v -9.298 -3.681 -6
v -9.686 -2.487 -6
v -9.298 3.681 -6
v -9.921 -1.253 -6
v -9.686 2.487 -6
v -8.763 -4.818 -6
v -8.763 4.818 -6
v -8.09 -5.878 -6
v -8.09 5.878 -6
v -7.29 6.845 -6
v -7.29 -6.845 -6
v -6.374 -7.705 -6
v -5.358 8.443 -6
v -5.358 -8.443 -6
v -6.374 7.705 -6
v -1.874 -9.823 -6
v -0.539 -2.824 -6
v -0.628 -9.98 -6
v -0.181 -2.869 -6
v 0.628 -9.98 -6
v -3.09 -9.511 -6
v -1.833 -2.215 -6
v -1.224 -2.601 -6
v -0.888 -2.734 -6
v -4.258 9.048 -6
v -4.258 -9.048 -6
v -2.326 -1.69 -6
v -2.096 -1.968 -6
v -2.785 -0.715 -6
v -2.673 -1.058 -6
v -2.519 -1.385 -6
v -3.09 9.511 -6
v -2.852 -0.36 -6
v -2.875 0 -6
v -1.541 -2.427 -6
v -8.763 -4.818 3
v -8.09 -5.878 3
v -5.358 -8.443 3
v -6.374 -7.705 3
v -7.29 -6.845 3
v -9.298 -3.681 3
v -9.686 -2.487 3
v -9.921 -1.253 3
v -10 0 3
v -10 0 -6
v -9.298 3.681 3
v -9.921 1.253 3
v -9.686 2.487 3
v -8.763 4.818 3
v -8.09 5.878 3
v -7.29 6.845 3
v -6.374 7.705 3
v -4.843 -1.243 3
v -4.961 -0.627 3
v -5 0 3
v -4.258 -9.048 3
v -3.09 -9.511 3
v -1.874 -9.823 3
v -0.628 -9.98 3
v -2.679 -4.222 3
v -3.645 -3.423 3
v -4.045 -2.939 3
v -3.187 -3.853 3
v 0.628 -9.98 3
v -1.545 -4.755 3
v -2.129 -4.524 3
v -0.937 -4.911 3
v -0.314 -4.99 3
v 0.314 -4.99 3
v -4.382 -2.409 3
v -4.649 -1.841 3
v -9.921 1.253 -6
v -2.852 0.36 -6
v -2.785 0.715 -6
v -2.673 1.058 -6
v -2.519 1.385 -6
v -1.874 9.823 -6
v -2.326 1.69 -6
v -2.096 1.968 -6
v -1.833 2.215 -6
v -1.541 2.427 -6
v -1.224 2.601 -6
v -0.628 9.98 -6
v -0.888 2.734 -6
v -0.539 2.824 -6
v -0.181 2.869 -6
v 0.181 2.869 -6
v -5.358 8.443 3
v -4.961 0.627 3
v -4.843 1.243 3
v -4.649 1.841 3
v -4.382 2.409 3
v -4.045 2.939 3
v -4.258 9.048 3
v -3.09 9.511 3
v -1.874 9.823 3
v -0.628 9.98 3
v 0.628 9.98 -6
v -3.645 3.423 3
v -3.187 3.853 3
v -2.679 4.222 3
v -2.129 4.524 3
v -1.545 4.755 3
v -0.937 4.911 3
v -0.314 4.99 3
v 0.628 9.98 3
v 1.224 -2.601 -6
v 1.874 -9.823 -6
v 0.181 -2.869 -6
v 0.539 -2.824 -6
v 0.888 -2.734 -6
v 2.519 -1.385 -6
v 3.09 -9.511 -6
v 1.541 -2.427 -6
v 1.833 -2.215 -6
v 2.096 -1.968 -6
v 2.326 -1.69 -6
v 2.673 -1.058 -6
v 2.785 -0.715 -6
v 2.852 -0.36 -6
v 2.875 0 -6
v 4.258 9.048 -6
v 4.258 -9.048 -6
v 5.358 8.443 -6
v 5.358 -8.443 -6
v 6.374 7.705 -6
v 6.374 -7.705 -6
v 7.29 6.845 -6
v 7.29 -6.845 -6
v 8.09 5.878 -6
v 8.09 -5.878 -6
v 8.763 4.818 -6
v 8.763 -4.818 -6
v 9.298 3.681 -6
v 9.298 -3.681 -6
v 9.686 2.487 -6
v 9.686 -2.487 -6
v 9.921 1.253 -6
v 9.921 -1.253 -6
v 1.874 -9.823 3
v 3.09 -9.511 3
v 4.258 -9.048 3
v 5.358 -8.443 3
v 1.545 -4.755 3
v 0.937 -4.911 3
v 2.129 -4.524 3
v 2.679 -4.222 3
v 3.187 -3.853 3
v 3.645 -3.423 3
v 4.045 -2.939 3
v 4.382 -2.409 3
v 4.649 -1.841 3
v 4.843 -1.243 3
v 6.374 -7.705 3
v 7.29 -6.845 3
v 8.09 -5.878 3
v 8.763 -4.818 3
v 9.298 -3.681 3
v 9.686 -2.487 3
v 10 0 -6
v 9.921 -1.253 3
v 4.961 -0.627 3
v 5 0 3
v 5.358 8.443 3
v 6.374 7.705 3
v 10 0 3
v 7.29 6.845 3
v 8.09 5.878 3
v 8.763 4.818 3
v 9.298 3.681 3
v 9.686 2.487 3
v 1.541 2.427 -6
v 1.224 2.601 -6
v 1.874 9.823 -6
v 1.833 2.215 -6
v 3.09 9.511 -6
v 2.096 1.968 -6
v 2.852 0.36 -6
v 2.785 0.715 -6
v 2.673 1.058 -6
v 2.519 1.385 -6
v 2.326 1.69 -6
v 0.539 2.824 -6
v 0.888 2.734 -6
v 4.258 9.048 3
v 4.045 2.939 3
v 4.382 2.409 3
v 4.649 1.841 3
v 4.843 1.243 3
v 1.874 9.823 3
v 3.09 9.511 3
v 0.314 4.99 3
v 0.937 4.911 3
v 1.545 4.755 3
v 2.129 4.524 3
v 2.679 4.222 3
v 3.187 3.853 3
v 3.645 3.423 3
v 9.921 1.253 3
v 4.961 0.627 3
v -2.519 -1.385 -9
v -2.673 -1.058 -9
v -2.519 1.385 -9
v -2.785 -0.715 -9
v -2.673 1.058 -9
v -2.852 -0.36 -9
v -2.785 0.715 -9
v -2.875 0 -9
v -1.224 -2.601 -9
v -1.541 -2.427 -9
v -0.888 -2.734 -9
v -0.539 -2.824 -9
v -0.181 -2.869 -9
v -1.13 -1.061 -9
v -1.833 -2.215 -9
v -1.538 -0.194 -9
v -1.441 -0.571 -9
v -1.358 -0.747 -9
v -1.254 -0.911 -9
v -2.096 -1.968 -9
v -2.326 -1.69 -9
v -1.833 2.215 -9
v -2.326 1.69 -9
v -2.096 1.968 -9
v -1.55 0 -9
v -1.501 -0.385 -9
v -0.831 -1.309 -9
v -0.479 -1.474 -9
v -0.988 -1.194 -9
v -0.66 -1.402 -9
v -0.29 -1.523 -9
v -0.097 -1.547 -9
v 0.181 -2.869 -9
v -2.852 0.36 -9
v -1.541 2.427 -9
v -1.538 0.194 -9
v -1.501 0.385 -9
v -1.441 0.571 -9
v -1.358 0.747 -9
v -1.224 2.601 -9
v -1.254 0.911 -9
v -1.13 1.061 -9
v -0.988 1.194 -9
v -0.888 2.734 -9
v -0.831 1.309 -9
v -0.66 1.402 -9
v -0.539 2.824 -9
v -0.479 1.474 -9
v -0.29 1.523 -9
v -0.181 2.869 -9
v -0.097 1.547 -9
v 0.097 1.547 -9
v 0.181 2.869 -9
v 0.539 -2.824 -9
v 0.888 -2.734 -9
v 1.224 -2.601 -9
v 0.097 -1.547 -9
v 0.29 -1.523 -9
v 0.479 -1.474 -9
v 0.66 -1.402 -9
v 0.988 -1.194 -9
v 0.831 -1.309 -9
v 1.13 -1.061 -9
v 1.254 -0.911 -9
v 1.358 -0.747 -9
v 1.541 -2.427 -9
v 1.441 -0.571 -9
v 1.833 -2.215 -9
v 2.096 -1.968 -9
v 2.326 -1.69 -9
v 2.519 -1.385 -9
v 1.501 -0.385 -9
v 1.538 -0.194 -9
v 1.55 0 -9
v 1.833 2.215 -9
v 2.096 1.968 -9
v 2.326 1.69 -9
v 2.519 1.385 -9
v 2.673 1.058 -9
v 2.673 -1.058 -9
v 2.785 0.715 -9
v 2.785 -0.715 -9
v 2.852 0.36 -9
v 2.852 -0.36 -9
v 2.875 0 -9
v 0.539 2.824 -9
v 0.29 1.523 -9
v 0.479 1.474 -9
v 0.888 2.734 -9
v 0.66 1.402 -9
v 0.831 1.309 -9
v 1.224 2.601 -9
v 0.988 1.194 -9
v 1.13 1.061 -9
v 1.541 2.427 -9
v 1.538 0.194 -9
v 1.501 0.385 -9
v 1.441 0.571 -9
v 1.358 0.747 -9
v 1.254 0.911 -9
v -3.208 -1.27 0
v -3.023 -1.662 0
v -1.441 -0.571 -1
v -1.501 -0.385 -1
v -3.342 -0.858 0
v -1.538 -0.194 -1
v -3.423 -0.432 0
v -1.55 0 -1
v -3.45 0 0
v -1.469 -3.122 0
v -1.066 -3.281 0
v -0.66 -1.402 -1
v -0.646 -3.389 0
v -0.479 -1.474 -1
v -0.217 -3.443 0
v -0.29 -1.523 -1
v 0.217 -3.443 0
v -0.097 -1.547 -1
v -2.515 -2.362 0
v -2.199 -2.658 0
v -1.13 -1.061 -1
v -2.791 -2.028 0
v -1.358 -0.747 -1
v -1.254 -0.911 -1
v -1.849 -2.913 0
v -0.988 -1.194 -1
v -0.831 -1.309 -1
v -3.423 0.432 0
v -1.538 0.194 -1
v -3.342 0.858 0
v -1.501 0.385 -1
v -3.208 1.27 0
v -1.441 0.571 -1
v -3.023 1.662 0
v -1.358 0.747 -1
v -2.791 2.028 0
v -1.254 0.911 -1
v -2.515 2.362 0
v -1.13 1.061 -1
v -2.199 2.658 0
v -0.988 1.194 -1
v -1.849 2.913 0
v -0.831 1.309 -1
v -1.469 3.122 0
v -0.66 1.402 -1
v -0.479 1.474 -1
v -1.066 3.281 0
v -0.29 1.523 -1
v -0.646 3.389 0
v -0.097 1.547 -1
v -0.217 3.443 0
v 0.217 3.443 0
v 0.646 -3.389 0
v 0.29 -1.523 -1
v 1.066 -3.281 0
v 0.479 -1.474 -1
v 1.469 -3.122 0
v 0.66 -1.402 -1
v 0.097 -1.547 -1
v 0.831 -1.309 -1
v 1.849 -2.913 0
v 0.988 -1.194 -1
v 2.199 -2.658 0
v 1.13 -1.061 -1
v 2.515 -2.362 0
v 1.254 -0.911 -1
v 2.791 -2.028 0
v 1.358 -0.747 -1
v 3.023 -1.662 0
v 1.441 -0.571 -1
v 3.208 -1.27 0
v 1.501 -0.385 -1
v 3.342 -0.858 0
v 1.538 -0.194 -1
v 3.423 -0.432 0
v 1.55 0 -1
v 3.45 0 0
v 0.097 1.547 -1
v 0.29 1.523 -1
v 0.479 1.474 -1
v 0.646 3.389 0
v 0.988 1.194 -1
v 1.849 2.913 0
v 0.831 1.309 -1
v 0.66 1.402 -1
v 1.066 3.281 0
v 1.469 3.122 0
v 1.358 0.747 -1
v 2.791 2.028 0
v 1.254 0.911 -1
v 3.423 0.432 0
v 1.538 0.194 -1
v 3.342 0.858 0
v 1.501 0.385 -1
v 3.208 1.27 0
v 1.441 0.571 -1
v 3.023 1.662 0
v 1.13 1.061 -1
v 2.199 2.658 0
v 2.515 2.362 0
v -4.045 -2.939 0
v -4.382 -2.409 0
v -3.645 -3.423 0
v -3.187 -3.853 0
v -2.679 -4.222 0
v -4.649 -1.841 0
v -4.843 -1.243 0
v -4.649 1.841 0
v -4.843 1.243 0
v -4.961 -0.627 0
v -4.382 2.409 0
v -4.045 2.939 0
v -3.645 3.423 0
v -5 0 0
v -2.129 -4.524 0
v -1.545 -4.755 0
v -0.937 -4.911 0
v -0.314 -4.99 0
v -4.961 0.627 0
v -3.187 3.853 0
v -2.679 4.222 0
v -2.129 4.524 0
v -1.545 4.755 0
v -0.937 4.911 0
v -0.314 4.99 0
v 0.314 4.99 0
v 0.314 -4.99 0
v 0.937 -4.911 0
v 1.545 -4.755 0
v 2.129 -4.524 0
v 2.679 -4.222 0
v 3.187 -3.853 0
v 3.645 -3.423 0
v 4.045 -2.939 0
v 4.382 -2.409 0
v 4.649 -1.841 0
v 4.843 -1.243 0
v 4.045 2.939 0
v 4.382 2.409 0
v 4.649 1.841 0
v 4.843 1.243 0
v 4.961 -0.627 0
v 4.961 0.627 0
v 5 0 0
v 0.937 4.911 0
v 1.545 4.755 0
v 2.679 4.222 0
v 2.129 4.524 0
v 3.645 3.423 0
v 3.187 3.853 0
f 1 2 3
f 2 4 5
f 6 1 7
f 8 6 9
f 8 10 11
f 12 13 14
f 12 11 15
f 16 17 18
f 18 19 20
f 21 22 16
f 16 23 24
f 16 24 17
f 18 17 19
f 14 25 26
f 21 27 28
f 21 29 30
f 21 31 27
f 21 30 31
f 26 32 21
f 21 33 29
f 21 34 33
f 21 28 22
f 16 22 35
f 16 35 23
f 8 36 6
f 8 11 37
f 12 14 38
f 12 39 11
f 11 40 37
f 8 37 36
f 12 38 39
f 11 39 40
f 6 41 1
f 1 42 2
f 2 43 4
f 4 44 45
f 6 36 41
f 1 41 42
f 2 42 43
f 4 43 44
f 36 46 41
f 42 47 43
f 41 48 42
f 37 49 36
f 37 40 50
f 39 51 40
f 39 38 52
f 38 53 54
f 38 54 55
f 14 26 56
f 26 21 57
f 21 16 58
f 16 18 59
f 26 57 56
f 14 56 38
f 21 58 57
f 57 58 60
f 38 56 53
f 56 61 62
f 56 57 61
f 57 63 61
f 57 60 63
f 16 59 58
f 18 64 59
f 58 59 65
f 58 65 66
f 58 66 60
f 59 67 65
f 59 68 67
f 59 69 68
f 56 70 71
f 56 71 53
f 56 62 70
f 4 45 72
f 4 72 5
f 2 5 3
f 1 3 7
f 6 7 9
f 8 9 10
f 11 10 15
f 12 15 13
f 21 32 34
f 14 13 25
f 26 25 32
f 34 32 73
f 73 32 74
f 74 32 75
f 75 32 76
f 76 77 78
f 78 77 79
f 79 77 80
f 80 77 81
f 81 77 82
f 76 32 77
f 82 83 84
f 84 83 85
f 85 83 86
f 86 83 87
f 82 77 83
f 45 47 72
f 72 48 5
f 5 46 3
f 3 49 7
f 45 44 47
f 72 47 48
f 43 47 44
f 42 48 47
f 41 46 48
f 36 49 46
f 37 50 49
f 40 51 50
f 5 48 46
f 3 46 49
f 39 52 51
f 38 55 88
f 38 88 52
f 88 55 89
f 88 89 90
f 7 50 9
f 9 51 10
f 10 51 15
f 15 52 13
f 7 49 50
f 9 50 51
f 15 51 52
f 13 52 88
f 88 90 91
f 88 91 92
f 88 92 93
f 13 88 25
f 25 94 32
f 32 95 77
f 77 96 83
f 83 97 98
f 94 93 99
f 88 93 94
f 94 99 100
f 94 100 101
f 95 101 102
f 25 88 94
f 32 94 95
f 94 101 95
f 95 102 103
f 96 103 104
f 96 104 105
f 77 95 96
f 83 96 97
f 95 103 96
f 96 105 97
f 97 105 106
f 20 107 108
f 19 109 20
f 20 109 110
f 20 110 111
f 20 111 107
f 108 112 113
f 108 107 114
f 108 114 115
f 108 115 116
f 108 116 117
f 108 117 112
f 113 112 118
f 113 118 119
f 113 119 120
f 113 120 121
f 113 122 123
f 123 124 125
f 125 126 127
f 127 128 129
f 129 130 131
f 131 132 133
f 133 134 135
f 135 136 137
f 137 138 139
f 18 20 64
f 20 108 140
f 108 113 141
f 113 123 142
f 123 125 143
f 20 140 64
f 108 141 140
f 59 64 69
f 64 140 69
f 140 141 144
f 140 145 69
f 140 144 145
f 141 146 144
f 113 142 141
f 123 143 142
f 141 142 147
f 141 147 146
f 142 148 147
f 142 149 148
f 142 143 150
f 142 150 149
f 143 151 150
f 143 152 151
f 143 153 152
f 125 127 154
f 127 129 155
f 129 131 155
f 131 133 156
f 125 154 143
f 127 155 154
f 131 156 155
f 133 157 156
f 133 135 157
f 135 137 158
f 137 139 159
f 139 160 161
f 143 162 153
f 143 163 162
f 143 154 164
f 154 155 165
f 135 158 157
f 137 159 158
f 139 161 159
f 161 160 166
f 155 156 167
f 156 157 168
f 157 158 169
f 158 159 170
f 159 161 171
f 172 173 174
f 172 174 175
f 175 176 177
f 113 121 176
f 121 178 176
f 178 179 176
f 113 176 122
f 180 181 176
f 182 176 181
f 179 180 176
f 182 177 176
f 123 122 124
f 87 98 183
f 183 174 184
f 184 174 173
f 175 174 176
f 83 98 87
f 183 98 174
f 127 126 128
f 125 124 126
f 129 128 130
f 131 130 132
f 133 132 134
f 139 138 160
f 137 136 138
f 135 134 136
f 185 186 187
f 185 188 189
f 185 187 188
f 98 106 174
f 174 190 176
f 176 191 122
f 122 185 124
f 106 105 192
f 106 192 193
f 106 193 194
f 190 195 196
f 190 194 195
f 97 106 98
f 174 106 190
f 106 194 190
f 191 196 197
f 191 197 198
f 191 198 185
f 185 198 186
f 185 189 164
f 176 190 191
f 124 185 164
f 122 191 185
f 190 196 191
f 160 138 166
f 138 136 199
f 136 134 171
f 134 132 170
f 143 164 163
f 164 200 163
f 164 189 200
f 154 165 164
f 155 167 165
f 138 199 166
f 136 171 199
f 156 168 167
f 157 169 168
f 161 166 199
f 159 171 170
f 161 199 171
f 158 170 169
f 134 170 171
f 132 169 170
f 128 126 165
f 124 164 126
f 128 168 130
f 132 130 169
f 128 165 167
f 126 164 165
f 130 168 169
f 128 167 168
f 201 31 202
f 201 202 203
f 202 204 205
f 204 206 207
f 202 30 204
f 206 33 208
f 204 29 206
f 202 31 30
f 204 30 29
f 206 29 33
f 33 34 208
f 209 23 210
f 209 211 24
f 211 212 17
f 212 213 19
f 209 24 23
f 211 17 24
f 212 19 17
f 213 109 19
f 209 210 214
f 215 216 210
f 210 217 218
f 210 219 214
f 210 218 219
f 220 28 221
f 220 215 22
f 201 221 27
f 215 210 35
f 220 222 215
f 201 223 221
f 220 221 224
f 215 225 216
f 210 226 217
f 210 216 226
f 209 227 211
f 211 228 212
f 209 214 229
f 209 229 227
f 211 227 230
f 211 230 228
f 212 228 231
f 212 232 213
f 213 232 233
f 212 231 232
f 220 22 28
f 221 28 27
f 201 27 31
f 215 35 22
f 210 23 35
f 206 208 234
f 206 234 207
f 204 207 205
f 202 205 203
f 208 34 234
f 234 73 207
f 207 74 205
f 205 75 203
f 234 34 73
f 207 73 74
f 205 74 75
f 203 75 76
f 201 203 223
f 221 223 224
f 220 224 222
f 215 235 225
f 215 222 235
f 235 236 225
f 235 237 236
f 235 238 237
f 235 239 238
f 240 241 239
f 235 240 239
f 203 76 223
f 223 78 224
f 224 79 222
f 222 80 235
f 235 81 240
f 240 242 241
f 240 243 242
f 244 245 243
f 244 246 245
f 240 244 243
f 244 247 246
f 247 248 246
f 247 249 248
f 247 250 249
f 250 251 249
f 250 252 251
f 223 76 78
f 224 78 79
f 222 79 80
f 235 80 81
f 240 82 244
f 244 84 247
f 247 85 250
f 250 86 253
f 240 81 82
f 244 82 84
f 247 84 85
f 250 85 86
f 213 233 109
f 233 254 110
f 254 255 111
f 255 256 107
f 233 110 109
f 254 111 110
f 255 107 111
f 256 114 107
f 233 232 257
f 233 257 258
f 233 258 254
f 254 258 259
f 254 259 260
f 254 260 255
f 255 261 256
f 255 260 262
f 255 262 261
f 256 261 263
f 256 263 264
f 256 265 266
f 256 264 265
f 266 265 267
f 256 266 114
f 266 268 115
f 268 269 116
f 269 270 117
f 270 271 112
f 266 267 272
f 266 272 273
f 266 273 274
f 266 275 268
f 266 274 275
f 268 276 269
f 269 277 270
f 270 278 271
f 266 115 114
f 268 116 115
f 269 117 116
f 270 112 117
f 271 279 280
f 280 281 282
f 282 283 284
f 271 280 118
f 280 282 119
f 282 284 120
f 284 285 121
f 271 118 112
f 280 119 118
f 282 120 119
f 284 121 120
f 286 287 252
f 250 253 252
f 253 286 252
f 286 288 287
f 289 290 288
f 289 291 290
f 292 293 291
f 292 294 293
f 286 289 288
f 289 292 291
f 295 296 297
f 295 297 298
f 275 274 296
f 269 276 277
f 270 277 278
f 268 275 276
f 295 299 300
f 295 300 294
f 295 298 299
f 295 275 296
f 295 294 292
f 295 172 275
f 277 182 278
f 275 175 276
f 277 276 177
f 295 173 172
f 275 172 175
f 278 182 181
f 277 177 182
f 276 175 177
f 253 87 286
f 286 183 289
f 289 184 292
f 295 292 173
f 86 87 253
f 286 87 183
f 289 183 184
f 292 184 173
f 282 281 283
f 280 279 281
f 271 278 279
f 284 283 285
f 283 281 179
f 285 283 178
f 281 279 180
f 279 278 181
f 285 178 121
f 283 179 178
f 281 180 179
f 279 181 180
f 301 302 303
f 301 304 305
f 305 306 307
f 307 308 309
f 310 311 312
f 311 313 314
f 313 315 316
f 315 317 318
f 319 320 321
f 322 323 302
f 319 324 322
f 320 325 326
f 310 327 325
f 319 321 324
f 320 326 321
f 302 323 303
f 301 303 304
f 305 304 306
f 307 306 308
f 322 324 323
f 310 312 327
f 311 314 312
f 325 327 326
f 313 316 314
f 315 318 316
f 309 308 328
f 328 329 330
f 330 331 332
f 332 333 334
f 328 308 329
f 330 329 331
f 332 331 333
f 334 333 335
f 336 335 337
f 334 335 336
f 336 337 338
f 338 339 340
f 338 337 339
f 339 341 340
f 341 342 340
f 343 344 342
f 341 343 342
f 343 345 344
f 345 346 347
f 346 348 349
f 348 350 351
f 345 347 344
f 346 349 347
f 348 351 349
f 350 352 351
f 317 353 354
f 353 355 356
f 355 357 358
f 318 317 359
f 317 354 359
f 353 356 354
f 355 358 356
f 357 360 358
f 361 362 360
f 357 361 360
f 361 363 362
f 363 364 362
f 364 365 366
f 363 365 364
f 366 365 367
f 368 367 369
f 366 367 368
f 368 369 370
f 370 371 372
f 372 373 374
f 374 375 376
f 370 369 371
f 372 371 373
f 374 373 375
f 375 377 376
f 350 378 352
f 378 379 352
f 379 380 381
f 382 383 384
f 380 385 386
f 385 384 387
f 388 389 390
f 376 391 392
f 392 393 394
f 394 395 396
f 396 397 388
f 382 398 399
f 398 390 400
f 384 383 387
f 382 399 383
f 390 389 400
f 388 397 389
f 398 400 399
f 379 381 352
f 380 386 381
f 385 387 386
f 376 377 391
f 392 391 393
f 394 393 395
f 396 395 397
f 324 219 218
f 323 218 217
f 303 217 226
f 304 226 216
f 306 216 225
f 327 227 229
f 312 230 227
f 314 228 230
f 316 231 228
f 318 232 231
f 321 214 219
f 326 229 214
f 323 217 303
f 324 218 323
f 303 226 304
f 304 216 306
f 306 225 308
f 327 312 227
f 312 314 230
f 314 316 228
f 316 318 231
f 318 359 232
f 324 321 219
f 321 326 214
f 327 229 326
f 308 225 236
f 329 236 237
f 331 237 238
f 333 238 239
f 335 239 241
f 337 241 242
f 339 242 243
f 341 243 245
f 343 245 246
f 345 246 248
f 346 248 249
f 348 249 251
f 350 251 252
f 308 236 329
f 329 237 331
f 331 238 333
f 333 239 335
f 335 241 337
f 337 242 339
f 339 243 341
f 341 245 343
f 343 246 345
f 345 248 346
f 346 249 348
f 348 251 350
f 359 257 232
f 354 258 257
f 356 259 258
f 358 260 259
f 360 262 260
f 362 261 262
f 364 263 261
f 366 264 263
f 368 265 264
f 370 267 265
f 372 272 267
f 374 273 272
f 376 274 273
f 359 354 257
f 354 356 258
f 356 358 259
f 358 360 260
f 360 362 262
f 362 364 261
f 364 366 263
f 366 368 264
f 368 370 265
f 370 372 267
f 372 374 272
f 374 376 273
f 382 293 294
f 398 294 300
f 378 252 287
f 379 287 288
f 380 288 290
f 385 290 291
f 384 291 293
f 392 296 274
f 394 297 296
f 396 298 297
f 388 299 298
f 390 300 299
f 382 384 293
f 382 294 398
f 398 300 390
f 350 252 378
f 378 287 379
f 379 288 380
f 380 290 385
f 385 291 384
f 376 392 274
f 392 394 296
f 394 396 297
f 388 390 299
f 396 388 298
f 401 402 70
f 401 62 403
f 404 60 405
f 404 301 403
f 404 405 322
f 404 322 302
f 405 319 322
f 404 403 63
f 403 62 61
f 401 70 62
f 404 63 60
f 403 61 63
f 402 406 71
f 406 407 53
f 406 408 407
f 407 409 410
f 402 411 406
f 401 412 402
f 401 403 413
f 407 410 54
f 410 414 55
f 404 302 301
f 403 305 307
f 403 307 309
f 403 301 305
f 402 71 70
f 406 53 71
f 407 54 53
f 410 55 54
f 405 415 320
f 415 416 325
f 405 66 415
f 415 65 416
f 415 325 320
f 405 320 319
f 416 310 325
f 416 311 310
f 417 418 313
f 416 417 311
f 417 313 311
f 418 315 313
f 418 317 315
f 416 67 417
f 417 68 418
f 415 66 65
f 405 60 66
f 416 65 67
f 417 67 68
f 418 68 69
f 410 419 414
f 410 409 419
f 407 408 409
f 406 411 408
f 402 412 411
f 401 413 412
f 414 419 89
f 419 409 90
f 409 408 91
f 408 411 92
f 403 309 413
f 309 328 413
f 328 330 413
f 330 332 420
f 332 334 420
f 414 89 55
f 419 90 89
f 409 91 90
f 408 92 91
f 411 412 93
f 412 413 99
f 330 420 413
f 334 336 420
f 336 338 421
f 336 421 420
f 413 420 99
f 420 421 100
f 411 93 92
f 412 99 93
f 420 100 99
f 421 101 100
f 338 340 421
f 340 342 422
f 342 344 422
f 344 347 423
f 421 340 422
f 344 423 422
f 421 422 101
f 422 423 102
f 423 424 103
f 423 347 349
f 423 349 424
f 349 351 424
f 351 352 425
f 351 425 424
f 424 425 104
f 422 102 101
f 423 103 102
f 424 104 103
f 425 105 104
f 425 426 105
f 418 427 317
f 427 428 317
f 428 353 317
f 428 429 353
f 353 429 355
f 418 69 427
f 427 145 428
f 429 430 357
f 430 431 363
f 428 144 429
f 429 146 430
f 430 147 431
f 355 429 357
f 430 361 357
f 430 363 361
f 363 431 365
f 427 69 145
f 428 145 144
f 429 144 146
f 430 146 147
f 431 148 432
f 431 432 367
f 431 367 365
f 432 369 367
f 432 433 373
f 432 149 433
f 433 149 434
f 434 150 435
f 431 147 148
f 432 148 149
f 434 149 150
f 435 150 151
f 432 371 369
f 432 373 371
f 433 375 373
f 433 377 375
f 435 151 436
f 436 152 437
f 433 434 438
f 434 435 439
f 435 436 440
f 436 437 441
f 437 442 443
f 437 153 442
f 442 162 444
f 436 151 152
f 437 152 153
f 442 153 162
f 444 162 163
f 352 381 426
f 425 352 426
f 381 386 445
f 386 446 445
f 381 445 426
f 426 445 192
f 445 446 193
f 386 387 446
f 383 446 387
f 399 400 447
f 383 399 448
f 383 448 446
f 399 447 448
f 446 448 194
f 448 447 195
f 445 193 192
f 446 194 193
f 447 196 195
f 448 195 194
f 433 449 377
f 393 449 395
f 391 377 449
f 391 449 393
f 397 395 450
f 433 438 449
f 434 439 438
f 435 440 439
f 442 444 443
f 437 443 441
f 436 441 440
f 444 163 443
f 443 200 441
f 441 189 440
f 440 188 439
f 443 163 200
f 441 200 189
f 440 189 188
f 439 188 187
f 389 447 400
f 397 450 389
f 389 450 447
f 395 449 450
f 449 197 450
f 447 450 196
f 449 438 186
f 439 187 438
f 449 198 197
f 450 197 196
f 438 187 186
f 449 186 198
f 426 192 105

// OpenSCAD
$fn = 50;

difference() {
	union() {
		translate(v = [0, 0, -6.0]) {
			cylinder(h = 9, r = 10.0);
		}
		#translate(v = [0, 0, -9.0]) {
			cylinder(h = 9, r = 2.875);
		}
	}
	union() {
		translate(v = [0, 0, 0]) {
			rotate(a = [0, 0, 0]) {
				difference() {
					union() {
						translate(v = [0, 0, -9.0]) {
							cylinder(h = 9, r = 1.25);
						}
						translate(v = [0, 0, -1.0]) {
							cylinder(h = 1.0, r1 = 1.55, r2 = 3.45);
						}
						translate(v = [0, 0, -9.0]) {
							cylinder(h = 9, r = 1.55);
						}
						translate(v = [0, 0, -9.0]) {
							cylinder(h = 9, r = 1.25);
						}
					}
					union();
				}
			}
		}
		#cylinder(h = 3, r = 5.0);
	}
}
